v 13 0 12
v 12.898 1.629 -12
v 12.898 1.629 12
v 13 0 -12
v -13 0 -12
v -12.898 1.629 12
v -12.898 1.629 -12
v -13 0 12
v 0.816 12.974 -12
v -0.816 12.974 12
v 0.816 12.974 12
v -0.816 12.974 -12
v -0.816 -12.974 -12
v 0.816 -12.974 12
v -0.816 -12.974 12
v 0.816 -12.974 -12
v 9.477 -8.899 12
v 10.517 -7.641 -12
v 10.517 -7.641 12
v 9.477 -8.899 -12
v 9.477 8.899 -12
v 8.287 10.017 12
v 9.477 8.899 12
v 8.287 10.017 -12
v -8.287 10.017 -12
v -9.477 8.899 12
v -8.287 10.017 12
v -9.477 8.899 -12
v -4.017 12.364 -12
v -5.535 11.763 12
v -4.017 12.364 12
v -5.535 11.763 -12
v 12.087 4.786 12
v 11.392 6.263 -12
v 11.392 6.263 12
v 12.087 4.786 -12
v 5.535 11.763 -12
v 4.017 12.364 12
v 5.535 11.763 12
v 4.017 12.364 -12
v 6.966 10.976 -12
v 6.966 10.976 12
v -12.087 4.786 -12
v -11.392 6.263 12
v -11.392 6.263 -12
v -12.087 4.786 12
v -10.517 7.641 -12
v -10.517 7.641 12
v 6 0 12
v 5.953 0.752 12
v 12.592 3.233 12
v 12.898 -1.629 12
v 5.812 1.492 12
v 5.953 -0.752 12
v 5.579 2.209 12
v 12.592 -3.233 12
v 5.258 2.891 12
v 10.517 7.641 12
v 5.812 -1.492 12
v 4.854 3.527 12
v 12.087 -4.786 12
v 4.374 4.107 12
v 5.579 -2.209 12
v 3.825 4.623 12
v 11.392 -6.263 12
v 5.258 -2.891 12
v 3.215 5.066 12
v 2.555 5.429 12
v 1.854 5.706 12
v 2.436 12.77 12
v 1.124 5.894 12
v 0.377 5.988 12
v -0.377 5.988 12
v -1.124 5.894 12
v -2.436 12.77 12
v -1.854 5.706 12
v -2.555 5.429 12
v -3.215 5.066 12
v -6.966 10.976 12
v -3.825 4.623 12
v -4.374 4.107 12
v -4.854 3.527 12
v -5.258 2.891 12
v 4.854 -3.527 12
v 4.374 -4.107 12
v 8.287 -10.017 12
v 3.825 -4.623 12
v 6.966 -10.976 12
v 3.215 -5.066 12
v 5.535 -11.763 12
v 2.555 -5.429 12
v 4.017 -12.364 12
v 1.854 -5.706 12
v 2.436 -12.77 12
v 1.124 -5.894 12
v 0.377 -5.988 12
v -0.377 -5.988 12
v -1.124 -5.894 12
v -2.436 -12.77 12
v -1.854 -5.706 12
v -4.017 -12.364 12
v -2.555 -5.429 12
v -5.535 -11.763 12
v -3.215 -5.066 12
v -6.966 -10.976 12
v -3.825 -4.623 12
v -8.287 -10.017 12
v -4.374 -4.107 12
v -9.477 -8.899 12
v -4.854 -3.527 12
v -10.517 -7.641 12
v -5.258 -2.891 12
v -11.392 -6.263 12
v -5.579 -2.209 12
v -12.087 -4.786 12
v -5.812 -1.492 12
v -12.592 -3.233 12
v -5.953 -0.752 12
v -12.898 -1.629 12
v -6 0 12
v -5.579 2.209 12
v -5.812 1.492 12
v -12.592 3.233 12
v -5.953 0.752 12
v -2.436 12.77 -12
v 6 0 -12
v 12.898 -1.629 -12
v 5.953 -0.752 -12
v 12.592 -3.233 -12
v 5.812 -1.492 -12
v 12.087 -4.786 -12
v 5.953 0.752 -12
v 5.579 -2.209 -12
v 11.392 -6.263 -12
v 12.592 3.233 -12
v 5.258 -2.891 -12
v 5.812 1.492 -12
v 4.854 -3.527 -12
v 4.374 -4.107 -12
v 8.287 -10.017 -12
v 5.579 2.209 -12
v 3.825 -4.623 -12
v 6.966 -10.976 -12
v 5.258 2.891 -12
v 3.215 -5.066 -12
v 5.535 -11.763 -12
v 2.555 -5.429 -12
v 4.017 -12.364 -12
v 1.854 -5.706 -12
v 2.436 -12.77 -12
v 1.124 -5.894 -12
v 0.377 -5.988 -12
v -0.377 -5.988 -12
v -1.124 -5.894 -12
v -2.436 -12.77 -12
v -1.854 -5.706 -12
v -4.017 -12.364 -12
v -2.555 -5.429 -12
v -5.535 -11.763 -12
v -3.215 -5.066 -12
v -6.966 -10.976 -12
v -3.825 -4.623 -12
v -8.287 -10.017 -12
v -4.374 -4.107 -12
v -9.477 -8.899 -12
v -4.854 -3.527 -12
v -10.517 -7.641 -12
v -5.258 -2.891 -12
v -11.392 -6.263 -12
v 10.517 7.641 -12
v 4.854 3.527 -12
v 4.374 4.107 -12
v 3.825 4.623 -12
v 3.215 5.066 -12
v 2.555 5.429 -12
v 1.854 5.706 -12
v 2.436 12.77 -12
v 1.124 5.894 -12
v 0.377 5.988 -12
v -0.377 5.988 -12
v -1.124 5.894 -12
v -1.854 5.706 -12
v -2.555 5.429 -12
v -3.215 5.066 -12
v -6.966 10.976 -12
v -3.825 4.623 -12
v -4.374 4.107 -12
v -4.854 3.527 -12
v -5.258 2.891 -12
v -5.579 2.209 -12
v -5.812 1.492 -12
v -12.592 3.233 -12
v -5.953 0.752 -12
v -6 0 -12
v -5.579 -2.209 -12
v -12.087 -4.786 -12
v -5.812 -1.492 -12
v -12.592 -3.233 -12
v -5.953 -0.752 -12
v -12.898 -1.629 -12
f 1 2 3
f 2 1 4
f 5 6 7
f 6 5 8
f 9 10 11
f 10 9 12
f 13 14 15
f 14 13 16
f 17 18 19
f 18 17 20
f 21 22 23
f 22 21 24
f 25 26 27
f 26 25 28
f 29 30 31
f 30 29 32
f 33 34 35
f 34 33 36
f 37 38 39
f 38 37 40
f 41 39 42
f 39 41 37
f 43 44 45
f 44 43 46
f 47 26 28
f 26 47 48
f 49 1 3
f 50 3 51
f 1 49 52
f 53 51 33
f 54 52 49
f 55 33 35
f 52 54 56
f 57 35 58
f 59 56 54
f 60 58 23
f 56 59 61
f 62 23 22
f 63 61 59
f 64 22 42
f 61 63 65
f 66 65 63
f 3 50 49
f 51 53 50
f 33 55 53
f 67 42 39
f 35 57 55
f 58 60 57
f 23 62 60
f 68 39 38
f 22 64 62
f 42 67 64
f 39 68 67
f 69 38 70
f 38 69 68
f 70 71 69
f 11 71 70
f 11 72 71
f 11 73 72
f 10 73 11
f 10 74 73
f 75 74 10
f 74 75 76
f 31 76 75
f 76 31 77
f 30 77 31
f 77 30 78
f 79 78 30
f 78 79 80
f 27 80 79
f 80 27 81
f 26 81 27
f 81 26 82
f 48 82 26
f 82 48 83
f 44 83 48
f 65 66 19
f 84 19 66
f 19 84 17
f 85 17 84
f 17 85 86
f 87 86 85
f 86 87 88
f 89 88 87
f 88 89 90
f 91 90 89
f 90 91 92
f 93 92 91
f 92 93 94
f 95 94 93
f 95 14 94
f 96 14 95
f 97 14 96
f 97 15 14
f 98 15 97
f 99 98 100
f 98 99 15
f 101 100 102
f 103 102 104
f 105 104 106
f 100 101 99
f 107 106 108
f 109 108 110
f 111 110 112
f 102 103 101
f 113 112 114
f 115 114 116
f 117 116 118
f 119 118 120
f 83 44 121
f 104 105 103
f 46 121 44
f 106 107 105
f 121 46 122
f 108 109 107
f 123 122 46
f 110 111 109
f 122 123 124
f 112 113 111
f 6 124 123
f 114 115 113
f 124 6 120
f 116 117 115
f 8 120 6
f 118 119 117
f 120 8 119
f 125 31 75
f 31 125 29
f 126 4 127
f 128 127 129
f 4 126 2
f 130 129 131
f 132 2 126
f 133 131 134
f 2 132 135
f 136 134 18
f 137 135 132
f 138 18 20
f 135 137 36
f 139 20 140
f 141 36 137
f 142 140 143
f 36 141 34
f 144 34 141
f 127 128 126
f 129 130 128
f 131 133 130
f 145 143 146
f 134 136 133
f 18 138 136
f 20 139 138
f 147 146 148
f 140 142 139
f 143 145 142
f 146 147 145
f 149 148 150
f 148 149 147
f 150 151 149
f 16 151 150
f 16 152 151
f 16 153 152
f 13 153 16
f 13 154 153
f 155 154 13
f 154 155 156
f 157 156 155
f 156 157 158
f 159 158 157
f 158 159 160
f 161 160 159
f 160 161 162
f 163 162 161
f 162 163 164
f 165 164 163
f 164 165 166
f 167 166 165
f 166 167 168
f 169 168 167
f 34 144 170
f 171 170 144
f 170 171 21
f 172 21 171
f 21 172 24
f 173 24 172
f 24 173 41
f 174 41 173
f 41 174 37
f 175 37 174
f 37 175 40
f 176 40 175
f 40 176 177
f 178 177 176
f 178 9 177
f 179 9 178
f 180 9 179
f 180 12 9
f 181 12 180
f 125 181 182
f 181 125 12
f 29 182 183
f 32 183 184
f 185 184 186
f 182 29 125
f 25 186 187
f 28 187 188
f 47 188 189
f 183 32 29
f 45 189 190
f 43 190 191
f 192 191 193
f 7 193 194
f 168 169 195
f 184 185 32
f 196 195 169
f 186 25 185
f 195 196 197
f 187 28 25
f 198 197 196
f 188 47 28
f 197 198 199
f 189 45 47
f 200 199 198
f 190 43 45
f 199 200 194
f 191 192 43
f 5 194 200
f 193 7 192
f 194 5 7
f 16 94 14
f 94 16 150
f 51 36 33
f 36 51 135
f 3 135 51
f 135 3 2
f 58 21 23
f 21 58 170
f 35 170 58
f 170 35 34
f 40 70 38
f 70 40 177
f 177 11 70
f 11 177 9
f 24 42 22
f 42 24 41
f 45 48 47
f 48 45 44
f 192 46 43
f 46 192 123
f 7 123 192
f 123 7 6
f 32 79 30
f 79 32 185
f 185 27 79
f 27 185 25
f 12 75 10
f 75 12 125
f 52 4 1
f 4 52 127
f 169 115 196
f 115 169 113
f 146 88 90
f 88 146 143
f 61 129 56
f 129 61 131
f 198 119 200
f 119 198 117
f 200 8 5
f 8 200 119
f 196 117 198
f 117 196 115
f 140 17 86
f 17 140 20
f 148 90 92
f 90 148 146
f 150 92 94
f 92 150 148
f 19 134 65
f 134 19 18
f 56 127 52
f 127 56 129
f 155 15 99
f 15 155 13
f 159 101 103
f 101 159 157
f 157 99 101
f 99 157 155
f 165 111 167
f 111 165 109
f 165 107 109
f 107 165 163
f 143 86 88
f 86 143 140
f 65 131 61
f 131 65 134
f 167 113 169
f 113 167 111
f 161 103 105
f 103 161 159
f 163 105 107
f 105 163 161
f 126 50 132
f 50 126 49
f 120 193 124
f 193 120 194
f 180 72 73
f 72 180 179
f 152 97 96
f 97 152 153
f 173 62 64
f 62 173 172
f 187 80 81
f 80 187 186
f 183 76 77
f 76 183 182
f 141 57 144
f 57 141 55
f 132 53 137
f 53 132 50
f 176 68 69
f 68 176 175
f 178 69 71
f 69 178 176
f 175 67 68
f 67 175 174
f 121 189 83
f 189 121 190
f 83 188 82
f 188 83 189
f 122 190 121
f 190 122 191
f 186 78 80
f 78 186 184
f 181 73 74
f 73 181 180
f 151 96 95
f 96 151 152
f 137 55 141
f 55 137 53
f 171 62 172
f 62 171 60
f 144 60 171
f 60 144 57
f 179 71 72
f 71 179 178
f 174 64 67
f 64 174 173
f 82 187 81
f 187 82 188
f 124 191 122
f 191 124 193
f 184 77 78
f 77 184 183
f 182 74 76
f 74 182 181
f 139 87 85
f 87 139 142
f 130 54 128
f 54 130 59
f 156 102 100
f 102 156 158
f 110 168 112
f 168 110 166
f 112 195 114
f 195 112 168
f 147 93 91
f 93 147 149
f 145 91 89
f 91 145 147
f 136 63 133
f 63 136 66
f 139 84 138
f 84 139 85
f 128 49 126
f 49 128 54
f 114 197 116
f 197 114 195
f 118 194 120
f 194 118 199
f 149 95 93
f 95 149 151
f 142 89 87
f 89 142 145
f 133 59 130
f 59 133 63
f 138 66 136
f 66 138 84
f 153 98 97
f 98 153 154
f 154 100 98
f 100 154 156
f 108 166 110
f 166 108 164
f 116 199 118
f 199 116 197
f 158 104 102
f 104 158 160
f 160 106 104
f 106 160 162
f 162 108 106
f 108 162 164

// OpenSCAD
$fn = 50;


difference() {
	union() {
		translate(v = [0, 0, -12.0000000000]) {
			cylinder(h = 24, r = 13.0000000000);
		}
	}
	union() {
		translate(v = [0, 0, -100.0000000000]) {
			cylinder(h = 200, r = 6);
		}
	}
}
